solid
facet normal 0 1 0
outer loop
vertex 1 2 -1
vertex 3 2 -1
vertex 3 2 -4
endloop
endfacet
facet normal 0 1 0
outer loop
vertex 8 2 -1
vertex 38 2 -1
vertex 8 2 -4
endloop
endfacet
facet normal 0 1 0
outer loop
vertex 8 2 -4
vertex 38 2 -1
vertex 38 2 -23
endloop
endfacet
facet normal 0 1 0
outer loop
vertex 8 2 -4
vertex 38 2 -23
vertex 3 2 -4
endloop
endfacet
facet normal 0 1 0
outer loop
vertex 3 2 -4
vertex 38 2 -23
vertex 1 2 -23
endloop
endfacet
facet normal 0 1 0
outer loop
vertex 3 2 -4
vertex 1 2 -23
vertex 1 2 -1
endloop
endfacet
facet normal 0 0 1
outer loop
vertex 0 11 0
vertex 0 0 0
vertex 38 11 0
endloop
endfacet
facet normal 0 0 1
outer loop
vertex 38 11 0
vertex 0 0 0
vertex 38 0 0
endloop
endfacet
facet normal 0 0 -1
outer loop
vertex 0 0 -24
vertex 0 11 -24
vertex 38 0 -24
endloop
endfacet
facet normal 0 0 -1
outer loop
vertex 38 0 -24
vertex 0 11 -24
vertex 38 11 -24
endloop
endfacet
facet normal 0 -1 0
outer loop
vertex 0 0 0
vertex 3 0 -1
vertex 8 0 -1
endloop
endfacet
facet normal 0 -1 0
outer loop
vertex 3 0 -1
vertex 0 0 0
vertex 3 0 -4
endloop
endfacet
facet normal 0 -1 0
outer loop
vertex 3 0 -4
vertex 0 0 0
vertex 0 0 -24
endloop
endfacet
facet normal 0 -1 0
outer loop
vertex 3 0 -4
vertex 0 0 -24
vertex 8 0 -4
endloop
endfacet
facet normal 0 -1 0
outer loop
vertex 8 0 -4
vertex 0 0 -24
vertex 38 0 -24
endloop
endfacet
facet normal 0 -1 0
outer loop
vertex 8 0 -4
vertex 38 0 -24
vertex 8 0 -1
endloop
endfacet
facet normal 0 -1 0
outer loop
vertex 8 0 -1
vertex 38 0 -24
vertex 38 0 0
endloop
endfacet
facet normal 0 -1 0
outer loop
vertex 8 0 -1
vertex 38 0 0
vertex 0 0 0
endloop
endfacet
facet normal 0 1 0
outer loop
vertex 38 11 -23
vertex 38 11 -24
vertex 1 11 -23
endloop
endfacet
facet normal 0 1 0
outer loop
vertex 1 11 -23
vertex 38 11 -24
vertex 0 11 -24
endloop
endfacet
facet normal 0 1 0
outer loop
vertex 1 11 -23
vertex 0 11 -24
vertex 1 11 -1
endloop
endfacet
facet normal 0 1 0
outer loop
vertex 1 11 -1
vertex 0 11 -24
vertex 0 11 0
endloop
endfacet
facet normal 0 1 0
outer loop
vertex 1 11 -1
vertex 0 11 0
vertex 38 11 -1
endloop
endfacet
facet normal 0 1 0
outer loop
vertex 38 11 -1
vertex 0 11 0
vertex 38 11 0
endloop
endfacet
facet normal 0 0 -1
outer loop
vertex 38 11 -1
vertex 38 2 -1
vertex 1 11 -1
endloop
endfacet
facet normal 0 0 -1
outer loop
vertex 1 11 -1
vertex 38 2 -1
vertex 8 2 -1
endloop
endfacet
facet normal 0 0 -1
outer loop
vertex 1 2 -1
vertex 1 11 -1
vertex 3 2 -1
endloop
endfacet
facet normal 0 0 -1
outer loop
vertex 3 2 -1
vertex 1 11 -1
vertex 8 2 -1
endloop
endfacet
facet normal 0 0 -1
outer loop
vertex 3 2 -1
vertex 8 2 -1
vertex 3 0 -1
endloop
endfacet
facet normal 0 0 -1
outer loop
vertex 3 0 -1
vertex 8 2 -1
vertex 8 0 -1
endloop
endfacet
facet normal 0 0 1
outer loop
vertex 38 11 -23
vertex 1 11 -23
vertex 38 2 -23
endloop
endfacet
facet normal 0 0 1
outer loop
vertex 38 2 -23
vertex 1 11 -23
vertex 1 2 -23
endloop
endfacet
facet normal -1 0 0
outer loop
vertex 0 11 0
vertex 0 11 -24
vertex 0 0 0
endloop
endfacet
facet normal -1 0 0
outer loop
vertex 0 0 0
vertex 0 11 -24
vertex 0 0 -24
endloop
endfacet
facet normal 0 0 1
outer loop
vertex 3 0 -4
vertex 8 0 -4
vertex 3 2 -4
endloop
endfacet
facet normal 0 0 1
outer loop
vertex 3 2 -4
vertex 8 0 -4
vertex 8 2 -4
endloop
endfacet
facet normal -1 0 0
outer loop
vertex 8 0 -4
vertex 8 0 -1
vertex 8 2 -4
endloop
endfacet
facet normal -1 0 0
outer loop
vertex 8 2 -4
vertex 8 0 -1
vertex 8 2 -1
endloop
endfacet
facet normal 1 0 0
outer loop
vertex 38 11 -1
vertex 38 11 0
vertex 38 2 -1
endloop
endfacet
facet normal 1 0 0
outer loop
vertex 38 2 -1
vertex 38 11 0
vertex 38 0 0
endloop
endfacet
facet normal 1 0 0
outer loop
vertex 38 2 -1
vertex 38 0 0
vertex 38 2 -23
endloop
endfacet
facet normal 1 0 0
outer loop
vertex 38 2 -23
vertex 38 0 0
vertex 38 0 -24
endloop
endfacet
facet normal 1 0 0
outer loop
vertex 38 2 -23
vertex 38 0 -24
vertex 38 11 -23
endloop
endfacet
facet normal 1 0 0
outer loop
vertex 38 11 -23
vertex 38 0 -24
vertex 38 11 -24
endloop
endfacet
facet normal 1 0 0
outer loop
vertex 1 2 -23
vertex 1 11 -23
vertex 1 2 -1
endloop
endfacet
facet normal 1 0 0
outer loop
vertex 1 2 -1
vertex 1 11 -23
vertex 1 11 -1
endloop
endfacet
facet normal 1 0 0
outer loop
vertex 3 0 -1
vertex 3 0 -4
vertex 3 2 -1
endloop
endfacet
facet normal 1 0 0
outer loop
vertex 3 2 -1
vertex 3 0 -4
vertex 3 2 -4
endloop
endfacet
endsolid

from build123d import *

# Parameters (mm, degrees)
SKETCH1_W           = 40
SKETCH1_H           = 24
BOSS_EXTRUDE1_DEPTH = 2
SKETCH2_W           = 40
SKETCH2_H           = 24
SKETCH2_W_2         = 36
SKETCH2_H_2         = 22
BOSS_EXTRUDE3_DEPTH = 9
SKETCH5_W           = 4
SKETCH5_H           = 3
CUT_EXTRUDE1_DEPTH  = 2
SKETCH6_W           = 24
SKETCH6_H           = 11
CUT_EXTRUDE2_DEPTH  = 2
SKETCH7_W           = 22
SKETCH7_H           = 9
CUT_EXTRUDE3_DEPTH  = 2
SKETCH8_W           = 1
SKETCH8_H           = 3
CUT_EXTRUDE4_DEPTH  = 2


with BuildPart() as part:
    # Sketch1 → Boss-Extrude1 (new body)
    with BuildSketch(Plane(origin=(0, 0, 0), x_dir=(1, 0, 0), z_dir=(0, 1, 0))):
        with Locations((20, 12)):
            Rectangle(SKETCH1_W, SKETCH1_H)
    extrude(amount=BOSS_EXTRUDE1_DEPTH)

    # Sketch2 → Boss-Extrude3 (add)
    with BuildSketch(Plane(origin=(0, 2, 0), x_dir=(1, 0, 0), z_dir=(0, 1, 0))):
        with Locations((20, 12)):
            Rectangle(SKETCH2_W, SKETCH2_H)
        with Locations((21, 12)):
            Rectangle(SKETCH2_W_2, SKETCH2_H_2, mode=Mode.SUBTRACT)
    extrude(amount=BOSS_EXTRUDE3_DEPTH)

    # Sketch5 → Cut-Extrude1 (cut)
    with BuildSketch(Plane(origin=(0, 2, 0), x_dir=(1, 0, 0), z_dir=(0, 1, 0))):
        with Locations((6, 2.5)):
            Rectangle(SKETCH5_W, SKETCH5_H)
    extrude(amount=-CUT_EXTRUDE1_DEPTH, mode=Mode.SUBTRACT)

    # Sketch6 → Cut-Extrude2 (cut)
    with BuildSketch(Plane(origin=(40, 0, 0), x_dir=(0, 0, -1), z_dir=(1, 0, 0))):
        with Locations((12, 5.5)):
            Rectangle(SKETCH6_W, SKETCH6_H)
    extrude(amount=-CUT_EXTRUDE2_DEPTH, mode=Mode.SUBTRACT)

    # Sketch7 → Cut-Extrude3 (cut)
    with BuildSketch(Plane(origin=(3, 0, 0), x_dir=(0, 0, -1), z_dir=(1, 0, 0))):
        with Locations((12, 6.5)):
            Rectangle(SKETCH7_W, SKETCH7_H)
    extrude(amount=-CUT_EXTRUDE3_DEPTH, mode=Mode.SUBTRACT)

    # Sketch8 → Cut-Extrude4 (cut)
    with BuildSketch(Plane(origin=(0, 2, 0), x_dir=(1, 0, 0), z_dir=(0, 1, 0))):
        with Locations((3.5, 2.5)):
            Rectangle(SKETCH8_W, SKETCH8_H)
    extrude(amount=-CUT_EXTRUDE4_DEPTH, mode=Mode.SUBTRACT)


solid = part.part
